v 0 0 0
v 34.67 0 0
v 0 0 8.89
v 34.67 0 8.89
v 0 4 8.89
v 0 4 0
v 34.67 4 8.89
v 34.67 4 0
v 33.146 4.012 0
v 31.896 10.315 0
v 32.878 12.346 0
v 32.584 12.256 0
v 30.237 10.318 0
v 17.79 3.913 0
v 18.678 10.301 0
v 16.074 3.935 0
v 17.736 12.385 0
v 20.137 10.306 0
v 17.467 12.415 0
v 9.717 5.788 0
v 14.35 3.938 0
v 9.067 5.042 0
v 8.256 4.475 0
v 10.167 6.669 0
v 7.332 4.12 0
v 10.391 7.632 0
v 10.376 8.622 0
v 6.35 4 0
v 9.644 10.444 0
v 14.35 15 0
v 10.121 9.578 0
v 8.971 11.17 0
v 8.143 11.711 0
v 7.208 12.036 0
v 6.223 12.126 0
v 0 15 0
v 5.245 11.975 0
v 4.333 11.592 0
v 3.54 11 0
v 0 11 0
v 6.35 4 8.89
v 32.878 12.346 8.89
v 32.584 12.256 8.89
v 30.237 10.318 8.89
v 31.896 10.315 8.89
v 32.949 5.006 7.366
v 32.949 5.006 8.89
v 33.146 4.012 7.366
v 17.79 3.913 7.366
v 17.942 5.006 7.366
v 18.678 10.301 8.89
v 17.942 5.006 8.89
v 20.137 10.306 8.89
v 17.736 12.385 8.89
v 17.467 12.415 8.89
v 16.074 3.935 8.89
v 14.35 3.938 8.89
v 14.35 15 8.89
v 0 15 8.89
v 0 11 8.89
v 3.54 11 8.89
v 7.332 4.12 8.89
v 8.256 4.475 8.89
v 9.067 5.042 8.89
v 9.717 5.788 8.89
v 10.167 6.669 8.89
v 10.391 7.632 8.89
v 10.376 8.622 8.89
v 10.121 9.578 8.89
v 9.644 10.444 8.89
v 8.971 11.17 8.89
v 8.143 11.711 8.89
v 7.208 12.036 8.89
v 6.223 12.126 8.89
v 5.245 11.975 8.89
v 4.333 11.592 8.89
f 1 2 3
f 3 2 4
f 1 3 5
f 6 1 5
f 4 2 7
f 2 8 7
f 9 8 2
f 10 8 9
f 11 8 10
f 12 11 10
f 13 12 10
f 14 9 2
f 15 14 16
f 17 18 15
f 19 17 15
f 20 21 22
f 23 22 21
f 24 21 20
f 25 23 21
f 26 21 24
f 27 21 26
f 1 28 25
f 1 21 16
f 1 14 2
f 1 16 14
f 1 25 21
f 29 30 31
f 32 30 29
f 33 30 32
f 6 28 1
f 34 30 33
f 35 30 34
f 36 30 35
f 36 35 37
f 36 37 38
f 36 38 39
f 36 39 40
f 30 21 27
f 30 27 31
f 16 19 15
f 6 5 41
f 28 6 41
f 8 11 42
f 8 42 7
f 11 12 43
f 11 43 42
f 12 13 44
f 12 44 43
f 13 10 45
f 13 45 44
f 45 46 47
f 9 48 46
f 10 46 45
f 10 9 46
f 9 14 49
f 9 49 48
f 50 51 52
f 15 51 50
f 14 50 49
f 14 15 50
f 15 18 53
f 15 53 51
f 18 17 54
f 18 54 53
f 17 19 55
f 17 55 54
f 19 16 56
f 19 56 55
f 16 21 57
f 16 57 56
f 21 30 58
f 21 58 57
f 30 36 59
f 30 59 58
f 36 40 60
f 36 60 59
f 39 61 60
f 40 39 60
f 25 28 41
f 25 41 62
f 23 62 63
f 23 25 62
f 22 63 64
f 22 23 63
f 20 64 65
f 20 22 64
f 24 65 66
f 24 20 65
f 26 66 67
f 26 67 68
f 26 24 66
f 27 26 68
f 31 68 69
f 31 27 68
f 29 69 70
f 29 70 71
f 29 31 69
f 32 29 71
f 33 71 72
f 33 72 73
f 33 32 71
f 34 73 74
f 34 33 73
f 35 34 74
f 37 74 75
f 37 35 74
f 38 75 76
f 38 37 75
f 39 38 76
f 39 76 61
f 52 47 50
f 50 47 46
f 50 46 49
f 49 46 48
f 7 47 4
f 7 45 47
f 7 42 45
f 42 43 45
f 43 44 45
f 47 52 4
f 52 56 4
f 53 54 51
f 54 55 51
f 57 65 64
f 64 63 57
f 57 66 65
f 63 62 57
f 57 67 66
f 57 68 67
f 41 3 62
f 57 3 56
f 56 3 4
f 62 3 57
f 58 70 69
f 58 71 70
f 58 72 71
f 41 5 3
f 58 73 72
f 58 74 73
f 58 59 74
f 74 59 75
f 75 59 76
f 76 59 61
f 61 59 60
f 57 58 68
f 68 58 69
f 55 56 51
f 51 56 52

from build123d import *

# Parameters (mm, degrees)
PAD_DEPTH    = 8.89
PAD001_DEPTH = 1.524


with BuildPart() as part:
    # Sketch → Pad (new body)
    with BuildSketch(Plane.XY):
        with BuildLine():
            Line((0, 0), (34.67, 0))
            Line((34.67, 0), (34.67, 4))
            Line((32.878183, 12.345886), (34.67, 4))
            Line((32.584282, 12.256473), (32.878183, 12.345886))
            Line((30.236841, 10.317895), (32.584282, 12.256473))
            Line((31.895653, 10.315125), (30.236841, 10.317895))
            Line((33.146309, 4.011625), (31.895653, 10.315125))
            Line((17.790159, 3.913346), (33.146309, 4.011625))
            Line((18.678085, 10.301132), (17.790159, 3.913346))
            Line((20.137171, 10.305716), (18.678085, 10.301132))
            Line((17.736418, 12.384692), (20.137171, 10.305716))
            Line((17.467266, 12.41508), (17.736418, 12.384692))
            Line((16.074211, 3.934741), (17.467266, 12.41508))
            Line((14.35, 3.937935), (16.074211, 3.934741))
            Line((14.35, 15), (14.35, 3.937935))
            Line((0, 15), (14.35, 15))
            Line((0, 11), (0, 15))
            Line((3.540018, 11), (0, 11))
            ThreePointArc((6.35, 4), (10.121472, 9.577967), (3.540018, 11))
            Line((0, 4), (6.35, 4))
            Line((0, 0), (0, 4))
        make_face()
    extrude(amount=PAD_DEPTH)

    # Sketch001 → Pad001 (new body)
    with BuildSketch(Plane.XY.offset(8.89)):
        Polygon((16.09544, 3.889412), (17.92443, 5.005656), (33.057573, 5.005656), (34.640282, 3.938822), align=None)
    extrude(amount=-PAD001_DEPTH)


solid = part.part
